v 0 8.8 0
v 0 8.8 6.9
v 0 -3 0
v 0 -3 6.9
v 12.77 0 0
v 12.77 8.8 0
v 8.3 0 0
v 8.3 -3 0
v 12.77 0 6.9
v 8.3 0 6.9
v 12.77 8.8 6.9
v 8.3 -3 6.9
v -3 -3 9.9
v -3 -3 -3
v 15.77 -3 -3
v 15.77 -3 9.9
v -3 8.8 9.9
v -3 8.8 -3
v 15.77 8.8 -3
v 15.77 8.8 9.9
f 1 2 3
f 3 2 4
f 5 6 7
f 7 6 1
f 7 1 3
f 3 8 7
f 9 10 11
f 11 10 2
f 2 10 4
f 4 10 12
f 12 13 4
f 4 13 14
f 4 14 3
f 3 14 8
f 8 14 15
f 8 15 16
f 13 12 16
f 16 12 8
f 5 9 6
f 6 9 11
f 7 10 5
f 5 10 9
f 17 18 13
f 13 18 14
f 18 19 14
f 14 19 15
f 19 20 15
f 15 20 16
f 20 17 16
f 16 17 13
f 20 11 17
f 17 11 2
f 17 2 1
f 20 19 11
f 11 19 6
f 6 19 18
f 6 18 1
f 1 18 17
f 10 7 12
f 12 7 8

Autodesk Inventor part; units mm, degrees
ref_plane "YZ Plane" through (0, 0, 0) normal (1, 0, 0) x (0, 1, 0)
ref_plane "XZ Plane" through (0, 0, 0) normal (0, 1, 0) x (-1, 0, 0)
ref_plane "XY Plane" through (0, 0, 0) normal (0, 0, 1) x (1, 0, 0)
sketch "Sketch1" plane through (0, 0, 0) normal (0, 1, 0) x (-1, 0, 0)
  line L0 (0, 0) -> (-12.77, 0)
  line L1 (-12.77, 0) -> (-12.77, 6.9)
  line L2 (-12.77, 6.9) -> (0, 6.9)
  line L3 (0, 6.9) -> (0, 0)
  line L4 (3, -3) -> (-15.77, -3)
  line L5 (-15.77, -3) -> (-15.77, 9.9)
  line L6 (-15.77, 9.9) -> (3, 9.9)
  line L7 (3, 9.9) -> (3, -3)
  point P0 (-6.385, -3)
  point P1 (-6.385, 0)
  point P2 (3, 3.45)
  dimension "d0" = 12.77
  dimension "d1" = 6.9
  dimension "d2" = 3
  dimension "d3" = 3
  dimension "d4" = 3
  dimension "d5" = 3
extrude "Extrusion1" add sketch "Sketch1" along normal blind 8.8
sketch "Sketch2" plane through (0, 0, 0) normal (0, -1, 0) x (1, 0, 0)
  line L0 (-3, 9.9) -> (15.77, 9.9) projected
  line L1 (15.77, -3) -> (-3, -3) projected
  line L2 (-3, 9.9) -> (15.77, 9.9)
  line L3 (15.77, 9.9) -> (15.77, -3)
  line L4 (15.77, -3) -> (-3, -3)
  line L5 (-3, -3) -> (-3, 9.9)
  point P0 (0, 0)
extrude "Extrusion2" add sketch "Sketch2" along normal blind 3
sketch "Sketch3" plane through (0, 0, 0) normal (0, 1, 0) x (1, 0, 0)
  line L0 (0, -6.9) -> (0, 0) projected
  line L1 (12.77, -6.9) -> (0, -6.9) projected
  line L2 (0, 0) -> (8.3, 0)
  line L3 (8.3, 0) -> (8.3, -6.9)
  line L4 (8.3, -6.9) -> (0, -6.9)
  line L5 (0, -6.9) -> (0, 0)
  dimension "d10" = 8.3
extrude "Extrusion3" cut sketch "Sketch3" against normal blind 3
equation "\"d3\" = d2"
equation "\"d5\" = d4"
properties part number "switch test v01"
